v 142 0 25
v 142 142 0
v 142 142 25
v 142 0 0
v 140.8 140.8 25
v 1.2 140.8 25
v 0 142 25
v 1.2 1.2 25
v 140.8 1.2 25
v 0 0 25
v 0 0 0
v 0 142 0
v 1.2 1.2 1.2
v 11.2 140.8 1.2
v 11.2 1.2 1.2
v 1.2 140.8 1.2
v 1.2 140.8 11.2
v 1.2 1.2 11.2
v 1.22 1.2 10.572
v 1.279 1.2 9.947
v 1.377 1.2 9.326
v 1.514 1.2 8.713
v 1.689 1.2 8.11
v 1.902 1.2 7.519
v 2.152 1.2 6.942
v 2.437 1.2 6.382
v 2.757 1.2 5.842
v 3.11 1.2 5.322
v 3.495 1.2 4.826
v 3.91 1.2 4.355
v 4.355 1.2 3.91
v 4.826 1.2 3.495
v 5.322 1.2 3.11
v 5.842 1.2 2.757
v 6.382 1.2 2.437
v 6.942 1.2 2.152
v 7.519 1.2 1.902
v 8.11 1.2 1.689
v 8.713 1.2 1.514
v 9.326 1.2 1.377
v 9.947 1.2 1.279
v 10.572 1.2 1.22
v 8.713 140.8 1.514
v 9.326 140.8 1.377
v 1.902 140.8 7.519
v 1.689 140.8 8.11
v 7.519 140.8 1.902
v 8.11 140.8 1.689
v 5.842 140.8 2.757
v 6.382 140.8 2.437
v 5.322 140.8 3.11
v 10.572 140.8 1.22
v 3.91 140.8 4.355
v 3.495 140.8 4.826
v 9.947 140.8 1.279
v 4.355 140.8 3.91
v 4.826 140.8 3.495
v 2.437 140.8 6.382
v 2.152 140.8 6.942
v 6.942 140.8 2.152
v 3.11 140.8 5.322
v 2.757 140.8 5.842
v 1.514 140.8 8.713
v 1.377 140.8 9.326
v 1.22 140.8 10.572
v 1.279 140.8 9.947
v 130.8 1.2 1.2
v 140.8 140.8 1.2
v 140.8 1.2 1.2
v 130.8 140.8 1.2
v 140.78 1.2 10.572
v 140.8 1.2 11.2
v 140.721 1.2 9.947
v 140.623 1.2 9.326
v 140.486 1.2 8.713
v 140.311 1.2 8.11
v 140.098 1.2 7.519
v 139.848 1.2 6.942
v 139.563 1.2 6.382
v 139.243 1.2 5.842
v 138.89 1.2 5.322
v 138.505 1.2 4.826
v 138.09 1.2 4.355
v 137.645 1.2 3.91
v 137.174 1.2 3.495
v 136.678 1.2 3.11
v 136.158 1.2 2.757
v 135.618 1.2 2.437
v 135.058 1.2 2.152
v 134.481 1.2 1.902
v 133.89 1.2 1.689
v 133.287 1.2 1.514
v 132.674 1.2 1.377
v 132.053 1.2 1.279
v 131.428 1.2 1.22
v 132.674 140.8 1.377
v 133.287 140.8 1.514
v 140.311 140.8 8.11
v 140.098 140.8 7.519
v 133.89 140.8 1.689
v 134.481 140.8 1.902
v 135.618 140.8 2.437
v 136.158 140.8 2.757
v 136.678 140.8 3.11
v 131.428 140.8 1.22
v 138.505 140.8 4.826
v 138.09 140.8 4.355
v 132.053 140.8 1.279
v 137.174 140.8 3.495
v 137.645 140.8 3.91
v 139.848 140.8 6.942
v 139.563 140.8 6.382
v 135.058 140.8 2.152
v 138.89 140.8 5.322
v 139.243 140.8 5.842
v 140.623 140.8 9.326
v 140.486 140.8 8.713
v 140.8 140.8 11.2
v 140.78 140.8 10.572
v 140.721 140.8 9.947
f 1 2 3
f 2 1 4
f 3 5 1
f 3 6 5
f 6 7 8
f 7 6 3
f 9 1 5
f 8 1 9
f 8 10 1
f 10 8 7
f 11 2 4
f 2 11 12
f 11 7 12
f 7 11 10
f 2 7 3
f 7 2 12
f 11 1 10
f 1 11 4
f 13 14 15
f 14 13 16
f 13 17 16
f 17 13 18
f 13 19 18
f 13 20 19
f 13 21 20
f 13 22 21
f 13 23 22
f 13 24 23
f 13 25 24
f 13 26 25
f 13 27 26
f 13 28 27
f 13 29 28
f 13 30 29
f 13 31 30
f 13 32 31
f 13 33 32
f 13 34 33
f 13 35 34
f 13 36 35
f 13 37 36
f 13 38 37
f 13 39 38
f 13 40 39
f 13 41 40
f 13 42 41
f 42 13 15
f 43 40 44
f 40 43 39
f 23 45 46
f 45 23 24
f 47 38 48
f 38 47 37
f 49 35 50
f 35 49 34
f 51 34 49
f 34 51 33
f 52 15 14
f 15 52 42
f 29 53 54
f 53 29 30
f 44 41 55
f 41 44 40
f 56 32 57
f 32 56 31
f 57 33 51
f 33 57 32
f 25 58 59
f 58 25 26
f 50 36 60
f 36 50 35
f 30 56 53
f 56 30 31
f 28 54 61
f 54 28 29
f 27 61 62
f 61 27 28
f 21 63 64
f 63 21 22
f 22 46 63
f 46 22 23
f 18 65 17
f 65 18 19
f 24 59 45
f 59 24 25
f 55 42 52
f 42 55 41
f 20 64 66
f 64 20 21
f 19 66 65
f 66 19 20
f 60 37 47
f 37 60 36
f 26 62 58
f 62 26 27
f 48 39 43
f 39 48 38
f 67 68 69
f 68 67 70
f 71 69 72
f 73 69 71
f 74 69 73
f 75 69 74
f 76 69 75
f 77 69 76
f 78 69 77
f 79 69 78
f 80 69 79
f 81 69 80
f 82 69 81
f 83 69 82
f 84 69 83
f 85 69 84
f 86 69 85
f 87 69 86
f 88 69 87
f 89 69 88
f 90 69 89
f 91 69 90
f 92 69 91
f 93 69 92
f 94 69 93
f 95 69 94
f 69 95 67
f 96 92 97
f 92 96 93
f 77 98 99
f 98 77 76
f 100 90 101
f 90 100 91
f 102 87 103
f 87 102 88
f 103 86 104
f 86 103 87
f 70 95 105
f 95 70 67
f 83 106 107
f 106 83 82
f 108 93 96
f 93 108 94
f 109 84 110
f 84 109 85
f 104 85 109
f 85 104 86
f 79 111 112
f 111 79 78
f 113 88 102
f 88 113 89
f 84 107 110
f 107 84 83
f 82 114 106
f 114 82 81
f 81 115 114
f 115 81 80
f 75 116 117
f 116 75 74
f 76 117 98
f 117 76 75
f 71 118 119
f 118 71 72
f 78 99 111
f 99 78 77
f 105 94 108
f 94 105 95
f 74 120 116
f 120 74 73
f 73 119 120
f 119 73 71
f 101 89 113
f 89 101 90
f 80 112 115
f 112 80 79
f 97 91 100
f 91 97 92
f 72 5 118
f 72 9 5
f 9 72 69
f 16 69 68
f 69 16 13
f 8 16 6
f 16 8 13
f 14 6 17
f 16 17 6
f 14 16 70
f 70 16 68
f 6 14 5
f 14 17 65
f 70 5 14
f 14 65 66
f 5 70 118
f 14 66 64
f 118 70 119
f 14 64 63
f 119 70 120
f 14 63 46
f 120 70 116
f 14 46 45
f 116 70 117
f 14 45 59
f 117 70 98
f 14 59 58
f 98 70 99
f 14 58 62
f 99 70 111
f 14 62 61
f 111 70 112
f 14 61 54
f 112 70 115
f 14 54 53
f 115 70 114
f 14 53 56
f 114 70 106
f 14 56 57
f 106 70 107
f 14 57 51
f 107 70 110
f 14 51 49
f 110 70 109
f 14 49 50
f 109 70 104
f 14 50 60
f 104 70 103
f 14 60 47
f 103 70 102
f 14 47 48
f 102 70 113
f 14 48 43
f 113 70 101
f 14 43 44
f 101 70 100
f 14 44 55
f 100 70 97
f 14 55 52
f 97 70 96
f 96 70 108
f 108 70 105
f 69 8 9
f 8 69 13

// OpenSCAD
include <boardgame_insert_toolkit_lib.2.scad>;

// determines whether lids are output.
g_b_print_lid = true;

// determines whether boxes are output.
g_b_print_box = true; 

// Focus on one box
g_isolated_print_box = ""; 

// Used to visualize how all of the boxes fit together. 
g_b_visualization = false;          
        
// this is the outer wall thickness. 
//Default = 1.5mm
g_wall_thickness = 1.2;

// The tolerance value is extra space put between planes of the lid and box that fit together.
// Increase the tolerance to loosen the fit and decrease it to tighten it.
//
// Note that the tolerance is applied exclusively to the lid.
// So if the lid is too tight or too loose, change this value ( up for looser fit, down for tighter fit ) and 
// you only need to reprint the lid.
// 
// The exception is the stackable box, where the bottom of the box is the lid of the box below,
// in which case the tolerance also affects that box bottom.
//
g_tolerance = 0.15;

// This adjusts the position of the lid detents downward. 
// The larger the value, the bigger the gap between the lid and the box.
g_tolerance_detents_pos = 0.1;

aw_box_x = 142.0; // 284 / 2
aw_box_y = 142.0; //
aw_box_z = 25.0;

aw_compartment_size_x = (aw_box_x - 2 * g_wall_thickness);
aw_compartment_size_y = (aw_box_y - 2 * g_wall_thickness);

data =
  [
    [
      "3x3 box",
      [
        [ BOX_SIZE_XYZ, [aw_box_x, aw_box_y, aw_box_z] ],
        [ BOX_NO_LID_B, t],
        [
          BOX_COMPONENT,
          [
            [ CMP_SHAPE, FILLET ],
            [ CMP_NUM_COMPARTMENTS_XY, [1, 1] ],
            [
              CMP_COMPARTMENT_SIZE_XYZ,
              [
                aw_compartment_size_x,
                aw_compartment_size_y,
                aw_box_z - 1 * g_wall_thickness
              ]
            ],
            [ POSITION_XY, [ CENTER, CENTER ] ],
          ]
        ],
      ]
    ]
  ];


MakeAll();
